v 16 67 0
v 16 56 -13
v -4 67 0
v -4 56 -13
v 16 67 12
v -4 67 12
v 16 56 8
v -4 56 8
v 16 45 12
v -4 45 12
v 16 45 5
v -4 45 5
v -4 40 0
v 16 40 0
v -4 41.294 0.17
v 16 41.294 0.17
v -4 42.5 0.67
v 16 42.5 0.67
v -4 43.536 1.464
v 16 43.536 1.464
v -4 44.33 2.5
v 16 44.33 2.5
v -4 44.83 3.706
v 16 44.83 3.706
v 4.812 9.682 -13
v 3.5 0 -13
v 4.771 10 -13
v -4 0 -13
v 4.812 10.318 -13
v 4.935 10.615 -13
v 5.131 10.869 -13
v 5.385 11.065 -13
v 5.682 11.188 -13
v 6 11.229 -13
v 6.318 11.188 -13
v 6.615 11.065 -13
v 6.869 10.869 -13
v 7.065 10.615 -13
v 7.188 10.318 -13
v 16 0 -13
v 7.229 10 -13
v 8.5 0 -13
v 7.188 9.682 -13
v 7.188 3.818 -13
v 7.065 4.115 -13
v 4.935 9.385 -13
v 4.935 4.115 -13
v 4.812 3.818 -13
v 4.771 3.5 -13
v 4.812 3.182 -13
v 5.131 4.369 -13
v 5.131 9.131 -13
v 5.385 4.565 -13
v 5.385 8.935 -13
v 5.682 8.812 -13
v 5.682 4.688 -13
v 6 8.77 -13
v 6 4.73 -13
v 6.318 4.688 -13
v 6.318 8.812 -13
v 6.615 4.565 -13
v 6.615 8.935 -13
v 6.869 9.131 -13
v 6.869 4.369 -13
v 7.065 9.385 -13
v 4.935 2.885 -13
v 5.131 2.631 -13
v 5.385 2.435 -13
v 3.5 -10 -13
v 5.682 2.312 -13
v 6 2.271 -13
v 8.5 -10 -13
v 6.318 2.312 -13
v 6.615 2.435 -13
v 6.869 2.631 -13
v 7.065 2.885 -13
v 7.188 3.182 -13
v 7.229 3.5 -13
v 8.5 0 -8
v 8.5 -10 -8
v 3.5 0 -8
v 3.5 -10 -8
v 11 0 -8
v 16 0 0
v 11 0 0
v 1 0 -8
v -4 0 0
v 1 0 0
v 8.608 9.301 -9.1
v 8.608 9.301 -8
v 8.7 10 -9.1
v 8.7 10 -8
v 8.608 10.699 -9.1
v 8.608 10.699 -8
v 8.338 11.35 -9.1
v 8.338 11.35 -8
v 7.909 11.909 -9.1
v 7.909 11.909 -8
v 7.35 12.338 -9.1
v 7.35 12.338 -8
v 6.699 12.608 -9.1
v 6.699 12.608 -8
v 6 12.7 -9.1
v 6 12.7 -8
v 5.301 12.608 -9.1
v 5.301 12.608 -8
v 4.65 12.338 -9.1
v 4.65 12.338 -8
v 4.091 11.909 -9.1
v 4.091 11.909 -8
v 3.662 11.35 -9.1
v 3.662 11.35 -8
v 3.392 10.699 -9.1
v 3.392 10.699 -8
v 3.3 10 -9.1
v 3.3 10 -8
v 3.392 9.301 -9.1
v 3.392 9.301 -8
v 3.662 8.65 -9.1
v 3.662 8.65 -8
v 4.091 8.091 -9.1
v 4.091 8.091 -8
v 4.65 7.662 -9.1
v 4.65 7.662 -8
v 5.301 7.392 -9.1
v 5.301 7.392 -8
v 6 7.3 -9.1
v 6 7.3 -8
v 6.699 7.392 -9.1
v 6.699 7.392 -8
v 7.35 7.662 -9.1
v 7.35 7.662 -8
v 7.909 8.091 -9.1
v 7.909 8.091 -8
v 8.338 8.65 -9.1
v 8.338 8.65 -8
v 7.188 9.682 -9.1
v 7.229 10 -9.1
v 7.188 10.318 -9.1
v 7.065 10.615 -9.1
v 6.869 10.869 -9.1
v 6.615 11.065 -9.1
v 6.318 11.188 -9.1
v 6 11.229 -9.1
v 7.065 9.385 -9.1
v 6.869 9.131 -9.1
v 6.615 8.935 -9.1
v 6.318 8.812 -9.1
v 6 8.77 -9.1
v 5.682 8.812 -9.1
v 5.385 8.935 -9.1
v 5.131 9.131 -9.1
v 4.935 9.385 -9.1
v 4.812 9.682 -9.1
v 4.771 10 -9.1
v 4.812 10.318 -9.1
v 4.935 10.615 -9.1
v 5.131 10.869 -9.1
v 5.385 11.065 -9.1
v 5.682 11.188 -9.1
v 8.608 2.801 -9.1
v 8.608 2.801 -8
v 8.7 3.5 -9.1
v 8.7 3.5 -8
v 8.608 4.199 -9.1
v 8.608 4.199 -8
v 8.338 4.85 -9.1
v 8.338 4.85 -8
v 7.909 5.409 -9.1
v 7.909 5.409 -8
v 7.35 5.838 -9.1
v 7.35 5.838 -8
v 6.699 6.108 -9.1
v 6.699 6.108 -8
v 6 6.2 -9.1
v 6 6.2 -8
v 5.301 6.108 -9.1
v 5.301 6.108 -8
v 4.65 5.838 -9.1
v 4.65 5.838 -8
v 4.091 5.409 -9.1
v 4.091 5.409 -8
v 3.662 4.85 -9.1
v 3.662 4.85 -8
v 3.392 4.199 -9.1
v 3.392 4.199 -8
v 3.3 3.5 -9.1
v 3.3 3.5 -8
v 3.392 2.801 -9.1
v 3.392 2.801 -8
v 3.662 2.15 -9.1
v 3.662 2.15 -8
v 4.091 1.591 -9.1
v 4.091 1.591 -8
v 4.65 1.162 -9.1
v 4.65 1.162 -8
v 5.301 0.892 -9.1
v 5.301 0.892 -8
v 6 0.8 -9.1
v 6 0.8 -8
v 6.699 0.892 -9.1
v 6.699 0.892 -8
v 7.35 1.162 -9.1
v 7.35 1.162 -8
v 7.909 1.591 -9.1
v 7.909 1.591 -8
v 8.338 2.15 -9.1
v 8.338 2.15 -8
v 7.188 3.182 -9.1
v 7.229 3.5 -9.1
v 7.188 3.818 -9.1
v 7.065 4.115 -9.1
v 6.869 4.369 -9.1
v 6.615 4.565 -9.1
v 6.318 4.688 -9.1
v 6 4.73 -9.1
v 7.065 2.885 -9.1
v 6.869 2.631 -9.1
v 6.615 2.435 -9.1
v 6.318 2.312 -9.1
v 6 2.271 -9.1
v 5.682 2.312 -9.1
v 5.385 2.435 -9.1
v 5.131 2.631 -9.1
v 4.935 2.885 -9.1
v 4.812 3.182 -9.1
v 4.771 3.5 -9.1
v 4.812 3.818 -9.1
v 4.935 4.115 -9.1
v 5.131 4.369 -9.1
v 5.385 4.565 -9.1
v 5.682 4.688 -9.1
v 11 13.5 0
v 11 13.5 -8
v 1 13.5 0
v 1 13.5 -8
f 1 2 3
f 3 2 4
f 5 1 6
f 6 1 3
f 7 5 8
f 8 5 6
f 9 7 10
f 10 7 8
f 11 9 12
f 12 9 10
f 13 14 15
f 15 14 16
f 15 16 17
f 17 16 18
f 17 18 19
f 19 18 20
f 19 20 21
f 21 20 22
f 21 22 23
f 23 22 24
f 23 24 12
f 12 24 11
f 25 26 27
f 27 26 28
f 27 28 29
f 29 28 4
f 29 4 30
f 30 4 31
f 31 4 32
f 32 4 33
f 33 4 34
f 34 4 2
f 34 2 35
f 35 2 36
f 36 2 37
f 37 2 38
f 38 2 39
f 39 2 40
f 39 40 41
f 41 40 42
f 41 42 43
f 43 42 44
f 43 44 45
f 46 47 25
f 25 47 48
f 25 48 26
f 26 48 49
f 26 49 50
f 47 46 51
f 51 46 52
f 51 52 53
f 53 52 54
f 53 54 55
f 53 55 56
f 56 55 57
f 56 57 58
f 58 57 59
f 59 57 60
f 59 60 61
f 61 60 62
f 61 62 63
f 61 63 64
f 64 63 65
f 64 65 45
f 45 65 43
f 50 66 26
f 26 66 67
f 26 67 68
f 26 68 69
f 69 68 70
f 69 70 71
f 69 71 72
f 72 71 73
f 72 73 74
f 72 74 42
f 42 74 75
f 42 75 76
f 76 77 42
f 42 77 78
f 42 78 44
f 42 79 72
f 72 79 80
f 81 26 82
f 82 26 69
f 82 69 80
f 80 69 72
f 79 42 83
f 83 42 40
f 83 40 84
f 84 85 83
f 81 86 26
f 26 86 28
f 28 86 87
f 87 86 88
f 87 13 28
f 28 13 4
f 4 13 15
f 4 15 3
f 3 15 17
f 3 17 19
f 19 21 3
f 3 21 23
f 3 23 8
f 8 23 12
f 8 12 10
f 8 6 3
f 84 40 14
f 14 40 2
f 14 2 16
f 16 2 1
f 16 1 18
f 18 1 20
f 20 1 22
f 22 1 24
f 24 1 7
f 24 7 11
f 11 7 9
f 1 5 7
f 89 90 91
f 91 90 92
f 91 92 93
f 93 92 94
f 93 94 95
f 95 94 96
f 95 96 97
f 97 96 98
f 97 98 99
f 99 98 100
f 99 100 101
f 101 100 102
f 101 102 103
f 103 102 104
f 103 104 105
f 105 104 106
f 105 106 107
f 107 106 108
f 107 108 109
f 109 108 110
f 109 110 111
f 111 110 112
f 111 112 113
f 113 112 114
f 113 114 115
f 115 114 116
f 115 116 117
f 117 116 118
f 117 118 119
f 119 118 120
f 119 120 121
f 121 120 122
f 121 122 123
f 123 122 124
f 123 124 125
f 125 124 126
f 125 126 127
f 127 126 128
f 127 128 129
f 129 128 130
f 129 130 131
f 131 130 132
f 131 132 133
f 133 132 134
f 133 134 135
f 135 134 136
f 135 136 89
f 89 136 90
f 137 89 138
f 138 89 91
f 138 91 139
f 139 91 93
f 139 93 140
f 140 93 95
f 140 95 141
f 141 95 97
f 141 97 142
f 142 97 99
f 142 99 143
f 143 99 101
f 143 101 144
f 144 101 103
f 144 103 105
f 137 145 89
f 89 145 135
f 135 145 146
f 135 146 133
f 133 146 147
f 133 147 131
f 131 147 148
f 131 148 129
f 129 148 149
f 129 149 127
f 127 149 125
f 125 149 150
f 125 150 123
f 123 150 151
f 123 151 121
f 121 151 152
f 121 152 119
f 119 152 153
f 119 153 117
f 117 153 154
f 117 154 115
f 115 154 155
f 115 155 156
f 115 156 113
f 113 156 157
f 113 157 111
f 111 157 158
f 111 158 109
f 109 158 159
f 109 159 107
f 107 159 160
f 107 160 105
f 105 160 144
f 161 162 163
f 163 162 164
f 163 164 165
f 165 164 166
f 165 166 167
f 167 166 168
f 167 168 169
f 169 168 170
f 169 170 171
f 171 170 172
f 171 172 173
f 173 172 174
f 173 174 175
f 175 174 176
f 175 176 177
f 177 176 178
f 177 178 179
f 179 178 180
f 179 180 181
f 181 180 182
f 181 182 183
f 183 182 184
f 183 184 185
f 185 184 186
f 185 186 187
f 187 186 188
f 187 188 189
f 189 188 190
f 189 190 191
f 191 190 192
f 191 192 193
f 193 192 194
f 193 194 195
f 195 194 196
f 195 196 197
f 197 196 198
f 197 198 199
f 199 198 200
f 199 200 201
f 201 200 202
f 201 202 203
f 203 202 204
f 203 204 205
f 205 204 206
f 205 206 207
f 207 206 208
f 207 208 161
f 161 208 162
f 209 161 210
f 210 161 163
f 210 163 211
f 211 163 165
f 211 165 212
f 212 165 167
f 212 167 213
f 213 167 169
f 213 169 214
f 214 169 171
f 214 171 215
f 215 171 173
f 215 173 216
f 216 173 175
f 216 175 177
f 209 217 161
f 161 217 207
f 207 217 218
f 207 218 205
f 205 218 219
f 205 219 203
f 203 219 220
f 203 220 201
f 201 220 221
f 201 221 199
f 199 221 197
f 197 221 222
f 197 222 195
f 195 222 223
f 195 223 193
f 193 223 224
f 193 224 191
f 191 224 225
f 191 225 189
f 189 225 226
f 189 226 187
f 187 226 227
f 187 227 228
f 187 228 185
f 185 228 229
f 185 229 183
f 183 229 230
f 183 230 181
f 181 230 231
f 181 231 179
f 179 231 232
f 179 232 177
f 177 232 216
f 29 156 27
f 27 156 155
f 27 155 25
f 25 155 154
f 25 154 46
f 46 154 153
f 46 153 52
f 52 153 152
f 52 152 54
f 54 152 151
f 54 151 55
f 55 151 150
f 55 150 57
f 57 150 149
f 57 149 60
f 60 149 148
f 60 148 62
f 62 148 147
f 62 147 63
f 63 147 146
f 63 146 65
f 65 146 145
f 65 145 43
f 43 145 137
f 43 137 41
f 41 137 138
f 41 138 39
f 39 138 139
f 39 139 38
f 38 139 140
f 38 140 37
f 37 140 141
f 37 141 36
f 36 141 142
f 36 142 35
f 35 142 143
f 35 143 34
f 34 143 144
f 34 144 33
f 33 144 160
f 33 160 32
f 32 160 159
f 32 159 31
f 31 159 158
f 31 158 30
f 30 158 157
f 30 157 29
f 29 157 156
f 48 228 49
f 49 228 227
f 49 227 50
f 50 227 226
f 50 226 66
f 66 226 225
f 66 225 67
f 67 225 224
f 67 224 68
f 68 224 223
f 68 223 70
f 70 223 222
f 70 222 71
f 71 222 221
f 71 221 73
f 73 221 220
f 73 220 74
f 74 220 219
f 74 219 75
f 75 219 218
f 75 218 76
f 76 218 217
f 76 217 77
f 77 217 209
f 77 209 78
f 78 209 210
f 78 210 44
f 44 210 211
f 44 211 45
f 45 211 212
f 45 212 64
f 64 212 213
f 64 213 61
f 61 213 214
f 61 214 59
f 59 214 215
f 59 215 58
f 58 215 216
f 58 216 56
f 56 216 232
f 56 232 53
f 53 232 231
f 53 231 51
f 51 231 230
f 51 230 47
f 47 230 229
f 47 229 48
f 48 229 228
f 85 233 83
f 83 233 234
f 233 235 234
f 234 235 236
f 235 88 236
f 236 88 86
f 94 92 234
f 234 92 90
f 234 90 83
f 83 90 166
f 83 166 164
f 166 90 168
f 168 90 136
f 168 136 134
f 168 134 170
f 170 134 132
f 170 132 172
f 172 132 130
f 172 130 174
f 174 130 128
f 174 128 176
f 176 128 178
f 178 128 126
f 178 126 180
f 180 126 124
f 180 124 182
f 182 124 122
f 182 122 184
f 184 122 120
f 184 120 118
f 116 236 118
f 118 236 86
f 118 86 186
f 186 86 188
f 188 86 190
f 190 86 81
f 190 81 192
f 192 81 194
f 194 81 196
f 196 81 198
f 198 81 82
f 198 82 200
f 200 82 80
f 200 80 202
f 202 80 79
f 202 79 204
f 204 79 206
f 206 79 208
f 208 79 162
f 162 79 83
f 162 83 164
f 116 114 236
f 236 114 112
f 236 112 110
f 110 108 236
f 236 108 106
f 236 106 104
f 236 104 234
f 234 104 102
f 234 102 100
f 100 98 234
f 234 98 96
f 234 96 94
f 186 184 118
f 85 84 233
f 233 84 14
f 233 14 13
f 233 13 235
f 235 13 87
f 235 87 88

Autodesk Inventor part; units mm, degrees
ref_plane "YZ Plane" through (0, 0, 0) normal (1, 0, 0) x (0, 1, 0)
ref_plane "XZ Plane" through (0, 0, 0) normal (0, 1, 0) x (-1, 0, 0)
sketch "Sketch2" plane through (0, 0, 0) normal (1, 0, 0) x (0, 1, 0)
  line L0 (0, 0) -> (15, 0)
  line L1 (15, 0) -> (15, -10)
  line L2 (15, -10) -> (0, -10)
  line L3 (0, -10) -> (0, 0)
  dimension "d4" = 15
  dimension "d5" = 10
extrude "Extrusion2" add sketch "Sketch2" along normal blind 12
sketch "Sketch3" plane through (0, 0, 0) normal (0, 0, 1) x (1, 0, 0)
  line L0 (0, 0) -> (1, 0)
  line L1 (0, 0) -> (12, 0) projected
  line L2 (1, 0) -> (1, 13.5)
  line L3 (1, 13.5) -> (11, 13.5)
  line L4 (11, 13.5) -> (11, 0)
  line L5 (11, 0) -> (1, 0)
  dimension "d8" = 1
  dimension "d9" = 13.5
  dimension "d10" = 10
extrude "Extrusion3" cut sketch "Sketch3" against normal blind 8
sketch "Sketch4" plane through (0, 0, -10) normal (0, 0, -1) x (-1, 0, 0)
  line L0 (0, 15) -> (-12, 15) projected
  line L1 (0, 0) -> (-12, 0) projected
  line L2 (-12, 15) -> (0, 15)
  line L3 (0, 15) -> (0, 0)
  line L4 (0, 0) -> (-12, 0)
  line L5 (-12, 0) -> (-12, 15)
extrude "Extrusion4" add sketch "Sketch4" along normal blind 2
sketch "Sketch5" plane through (0, 0, -8) normal (0, 0, 1) x (1, 0, 0)
  line L0 (1, 13.5) -> (11, 13.5) projected
  line L1 (6, 13.5) -> (6, 10)
  line L2 (6, 10) -> (6, 3.5)
  circle A0 centre (6, 10) radius 1.2295
  circle A1 centre (6, 3.5) radius 1.2295
  point P0 (0, 0)
  dimension "d15" = 3.5
  dimension "d16" = 6.5
  dimension "d17" = 2.459
  dimension "d18" = 2.459
extrude "Extrusion5" cut sketch "Sketch5" against normal blind 4
sketch "Sketch6" plane through (0, 0, -8) normal (0, 0, 1) x (1, 0, 0)
  circle A0 centre (6, 10) radius 1.2295 projected
  circle A1 centre (6, 10) radius 2.7
  circle A2 centre (6, 3.5) radius 1.2295 projected
  circle A3 centre (6, 3.5) radius 2.7
  point P0 (0, 0)
  dimension "d21" = 5.4
  dimension "d22" = 5.4
extrude "Extrusion6" cut sketch "Sketch6" against normal blind 1.1
sketch "Sketch15" plane through (12, 0, 0) normal (1, 0, 0) x (0, 0, -1)
  line L0 (0, 15) -> (12, 15) projected
  line L1 (12, 15) -> (12, 0) projected
  line L2 (0, 15) -> (12, 15)
  line L3 (12, 15) -> (12, 0)
  line L4 (12, 0) -> (0, 0)
  line L5 (0, 0) -> (0, 15)
extrude "Extrusion14" add sketch "Sketch15" along normal blind 4
ref_plane "Work Plane1" through (6, 0, 0) normal (1, 0, 0) x (0, 0, -1)
mirror "Mirror1" about plane through (6, 0, 0) normal (1, 0, 0) of "Extrusion14"
sketch "Sketch16" plane through (1, 0, -8) normal (0, -1, 0) x (1, 0, 0)
  line L0 (10, 0) -> (0, 0) projected
  line L1 (5, 0) -> (7.5, 0)
  line L2 (7.5, 0) -> (7.5, -4)
  line L3 (-5, -4) -> (15, -4) projected
  line L4 (7.5, -4) -> (2.5, -4)
  line L5 (2.5, -4) -> (2.5, 0)
  line L6 (2.5, 0) -> (5, 0)
  point P0 (-1, 8)
  dimension "d61" = 2.5
  dimension "d62" = 4
  dimension "d63" = 5
  dimension "d64" = 4
extrude "Extrusion15" add sketch "Sketch16" along normal blind 10
sketch "Sketch18" plane through (0, 0, -12) normal (0, 0, -1) x (-1, 0, 0)
  line L0 (-16, 15) -> (4, 15) projected
  line L1 (4, 0) -> (-3.5, 0) projected
  line L2 (-16, 15) -> (4, 15)
  line L3 (4, 15) -> (4, 0)
  line L4 (4, 0) -> (-16, 0)
  line L5 (-16, 0) -> (-16, 15)
  line L6 (-8.5, -10) -> (-3.5, -10) projected
  line L7 (-3.5, 0) -> (-8.5, 0)
  line L8 (-8.5, 0) -> (-8.5, -10)
  line L9 (-8.5, -10) -> (-3.5, -10)
  line L10 (-3.5, -10) -> (-3.5, 0)
  circle A0 centre (-6, 3.5) radius 1.2295 projected
  circle A1 centre (-6, 3.5) radius 1.2295
  circle A2 centre (-6, 10) radius 1.2295 projected
  circle A3 centre (-6, 10) radius 1.2295
  point P0 (0, 0)
extrude "Extrusion16" add sketch "Sketch18" along normal blind 1
sketch "Sketch19" plane through (16, 0, 0) normal (1, 0, 0) x (0, 0, -1)
  line L0 (0, 15) -> (13, 15) projected
  line L1 (0, 15) -> (0, 40)
  line L2 (-5, 45) -> (-12, 45)
  line L3 (13, 45) -> (13, 15)
  arc A0 (0, 40) -> (-5, 45) centre (-5, 40) ccw
  line L4 (-12, 67) -> (0, 67)
  line L5 (0, 67) -> (13, 56)
  line L6 (13, 56) -> (13, 45)
  line L7 (-8, 56) -> (-12, 67)
  line L8 (-8, 56) -> (-12, 45)
  point P0 (0, 0)
  point P1 (0, 45)
  dimension "d69" = 30
  dimension "d76" = 22
extrude "Extrusion17" add sketch "Sketch19" against normal blind 20
properties part number "20mm_x_20mm"
